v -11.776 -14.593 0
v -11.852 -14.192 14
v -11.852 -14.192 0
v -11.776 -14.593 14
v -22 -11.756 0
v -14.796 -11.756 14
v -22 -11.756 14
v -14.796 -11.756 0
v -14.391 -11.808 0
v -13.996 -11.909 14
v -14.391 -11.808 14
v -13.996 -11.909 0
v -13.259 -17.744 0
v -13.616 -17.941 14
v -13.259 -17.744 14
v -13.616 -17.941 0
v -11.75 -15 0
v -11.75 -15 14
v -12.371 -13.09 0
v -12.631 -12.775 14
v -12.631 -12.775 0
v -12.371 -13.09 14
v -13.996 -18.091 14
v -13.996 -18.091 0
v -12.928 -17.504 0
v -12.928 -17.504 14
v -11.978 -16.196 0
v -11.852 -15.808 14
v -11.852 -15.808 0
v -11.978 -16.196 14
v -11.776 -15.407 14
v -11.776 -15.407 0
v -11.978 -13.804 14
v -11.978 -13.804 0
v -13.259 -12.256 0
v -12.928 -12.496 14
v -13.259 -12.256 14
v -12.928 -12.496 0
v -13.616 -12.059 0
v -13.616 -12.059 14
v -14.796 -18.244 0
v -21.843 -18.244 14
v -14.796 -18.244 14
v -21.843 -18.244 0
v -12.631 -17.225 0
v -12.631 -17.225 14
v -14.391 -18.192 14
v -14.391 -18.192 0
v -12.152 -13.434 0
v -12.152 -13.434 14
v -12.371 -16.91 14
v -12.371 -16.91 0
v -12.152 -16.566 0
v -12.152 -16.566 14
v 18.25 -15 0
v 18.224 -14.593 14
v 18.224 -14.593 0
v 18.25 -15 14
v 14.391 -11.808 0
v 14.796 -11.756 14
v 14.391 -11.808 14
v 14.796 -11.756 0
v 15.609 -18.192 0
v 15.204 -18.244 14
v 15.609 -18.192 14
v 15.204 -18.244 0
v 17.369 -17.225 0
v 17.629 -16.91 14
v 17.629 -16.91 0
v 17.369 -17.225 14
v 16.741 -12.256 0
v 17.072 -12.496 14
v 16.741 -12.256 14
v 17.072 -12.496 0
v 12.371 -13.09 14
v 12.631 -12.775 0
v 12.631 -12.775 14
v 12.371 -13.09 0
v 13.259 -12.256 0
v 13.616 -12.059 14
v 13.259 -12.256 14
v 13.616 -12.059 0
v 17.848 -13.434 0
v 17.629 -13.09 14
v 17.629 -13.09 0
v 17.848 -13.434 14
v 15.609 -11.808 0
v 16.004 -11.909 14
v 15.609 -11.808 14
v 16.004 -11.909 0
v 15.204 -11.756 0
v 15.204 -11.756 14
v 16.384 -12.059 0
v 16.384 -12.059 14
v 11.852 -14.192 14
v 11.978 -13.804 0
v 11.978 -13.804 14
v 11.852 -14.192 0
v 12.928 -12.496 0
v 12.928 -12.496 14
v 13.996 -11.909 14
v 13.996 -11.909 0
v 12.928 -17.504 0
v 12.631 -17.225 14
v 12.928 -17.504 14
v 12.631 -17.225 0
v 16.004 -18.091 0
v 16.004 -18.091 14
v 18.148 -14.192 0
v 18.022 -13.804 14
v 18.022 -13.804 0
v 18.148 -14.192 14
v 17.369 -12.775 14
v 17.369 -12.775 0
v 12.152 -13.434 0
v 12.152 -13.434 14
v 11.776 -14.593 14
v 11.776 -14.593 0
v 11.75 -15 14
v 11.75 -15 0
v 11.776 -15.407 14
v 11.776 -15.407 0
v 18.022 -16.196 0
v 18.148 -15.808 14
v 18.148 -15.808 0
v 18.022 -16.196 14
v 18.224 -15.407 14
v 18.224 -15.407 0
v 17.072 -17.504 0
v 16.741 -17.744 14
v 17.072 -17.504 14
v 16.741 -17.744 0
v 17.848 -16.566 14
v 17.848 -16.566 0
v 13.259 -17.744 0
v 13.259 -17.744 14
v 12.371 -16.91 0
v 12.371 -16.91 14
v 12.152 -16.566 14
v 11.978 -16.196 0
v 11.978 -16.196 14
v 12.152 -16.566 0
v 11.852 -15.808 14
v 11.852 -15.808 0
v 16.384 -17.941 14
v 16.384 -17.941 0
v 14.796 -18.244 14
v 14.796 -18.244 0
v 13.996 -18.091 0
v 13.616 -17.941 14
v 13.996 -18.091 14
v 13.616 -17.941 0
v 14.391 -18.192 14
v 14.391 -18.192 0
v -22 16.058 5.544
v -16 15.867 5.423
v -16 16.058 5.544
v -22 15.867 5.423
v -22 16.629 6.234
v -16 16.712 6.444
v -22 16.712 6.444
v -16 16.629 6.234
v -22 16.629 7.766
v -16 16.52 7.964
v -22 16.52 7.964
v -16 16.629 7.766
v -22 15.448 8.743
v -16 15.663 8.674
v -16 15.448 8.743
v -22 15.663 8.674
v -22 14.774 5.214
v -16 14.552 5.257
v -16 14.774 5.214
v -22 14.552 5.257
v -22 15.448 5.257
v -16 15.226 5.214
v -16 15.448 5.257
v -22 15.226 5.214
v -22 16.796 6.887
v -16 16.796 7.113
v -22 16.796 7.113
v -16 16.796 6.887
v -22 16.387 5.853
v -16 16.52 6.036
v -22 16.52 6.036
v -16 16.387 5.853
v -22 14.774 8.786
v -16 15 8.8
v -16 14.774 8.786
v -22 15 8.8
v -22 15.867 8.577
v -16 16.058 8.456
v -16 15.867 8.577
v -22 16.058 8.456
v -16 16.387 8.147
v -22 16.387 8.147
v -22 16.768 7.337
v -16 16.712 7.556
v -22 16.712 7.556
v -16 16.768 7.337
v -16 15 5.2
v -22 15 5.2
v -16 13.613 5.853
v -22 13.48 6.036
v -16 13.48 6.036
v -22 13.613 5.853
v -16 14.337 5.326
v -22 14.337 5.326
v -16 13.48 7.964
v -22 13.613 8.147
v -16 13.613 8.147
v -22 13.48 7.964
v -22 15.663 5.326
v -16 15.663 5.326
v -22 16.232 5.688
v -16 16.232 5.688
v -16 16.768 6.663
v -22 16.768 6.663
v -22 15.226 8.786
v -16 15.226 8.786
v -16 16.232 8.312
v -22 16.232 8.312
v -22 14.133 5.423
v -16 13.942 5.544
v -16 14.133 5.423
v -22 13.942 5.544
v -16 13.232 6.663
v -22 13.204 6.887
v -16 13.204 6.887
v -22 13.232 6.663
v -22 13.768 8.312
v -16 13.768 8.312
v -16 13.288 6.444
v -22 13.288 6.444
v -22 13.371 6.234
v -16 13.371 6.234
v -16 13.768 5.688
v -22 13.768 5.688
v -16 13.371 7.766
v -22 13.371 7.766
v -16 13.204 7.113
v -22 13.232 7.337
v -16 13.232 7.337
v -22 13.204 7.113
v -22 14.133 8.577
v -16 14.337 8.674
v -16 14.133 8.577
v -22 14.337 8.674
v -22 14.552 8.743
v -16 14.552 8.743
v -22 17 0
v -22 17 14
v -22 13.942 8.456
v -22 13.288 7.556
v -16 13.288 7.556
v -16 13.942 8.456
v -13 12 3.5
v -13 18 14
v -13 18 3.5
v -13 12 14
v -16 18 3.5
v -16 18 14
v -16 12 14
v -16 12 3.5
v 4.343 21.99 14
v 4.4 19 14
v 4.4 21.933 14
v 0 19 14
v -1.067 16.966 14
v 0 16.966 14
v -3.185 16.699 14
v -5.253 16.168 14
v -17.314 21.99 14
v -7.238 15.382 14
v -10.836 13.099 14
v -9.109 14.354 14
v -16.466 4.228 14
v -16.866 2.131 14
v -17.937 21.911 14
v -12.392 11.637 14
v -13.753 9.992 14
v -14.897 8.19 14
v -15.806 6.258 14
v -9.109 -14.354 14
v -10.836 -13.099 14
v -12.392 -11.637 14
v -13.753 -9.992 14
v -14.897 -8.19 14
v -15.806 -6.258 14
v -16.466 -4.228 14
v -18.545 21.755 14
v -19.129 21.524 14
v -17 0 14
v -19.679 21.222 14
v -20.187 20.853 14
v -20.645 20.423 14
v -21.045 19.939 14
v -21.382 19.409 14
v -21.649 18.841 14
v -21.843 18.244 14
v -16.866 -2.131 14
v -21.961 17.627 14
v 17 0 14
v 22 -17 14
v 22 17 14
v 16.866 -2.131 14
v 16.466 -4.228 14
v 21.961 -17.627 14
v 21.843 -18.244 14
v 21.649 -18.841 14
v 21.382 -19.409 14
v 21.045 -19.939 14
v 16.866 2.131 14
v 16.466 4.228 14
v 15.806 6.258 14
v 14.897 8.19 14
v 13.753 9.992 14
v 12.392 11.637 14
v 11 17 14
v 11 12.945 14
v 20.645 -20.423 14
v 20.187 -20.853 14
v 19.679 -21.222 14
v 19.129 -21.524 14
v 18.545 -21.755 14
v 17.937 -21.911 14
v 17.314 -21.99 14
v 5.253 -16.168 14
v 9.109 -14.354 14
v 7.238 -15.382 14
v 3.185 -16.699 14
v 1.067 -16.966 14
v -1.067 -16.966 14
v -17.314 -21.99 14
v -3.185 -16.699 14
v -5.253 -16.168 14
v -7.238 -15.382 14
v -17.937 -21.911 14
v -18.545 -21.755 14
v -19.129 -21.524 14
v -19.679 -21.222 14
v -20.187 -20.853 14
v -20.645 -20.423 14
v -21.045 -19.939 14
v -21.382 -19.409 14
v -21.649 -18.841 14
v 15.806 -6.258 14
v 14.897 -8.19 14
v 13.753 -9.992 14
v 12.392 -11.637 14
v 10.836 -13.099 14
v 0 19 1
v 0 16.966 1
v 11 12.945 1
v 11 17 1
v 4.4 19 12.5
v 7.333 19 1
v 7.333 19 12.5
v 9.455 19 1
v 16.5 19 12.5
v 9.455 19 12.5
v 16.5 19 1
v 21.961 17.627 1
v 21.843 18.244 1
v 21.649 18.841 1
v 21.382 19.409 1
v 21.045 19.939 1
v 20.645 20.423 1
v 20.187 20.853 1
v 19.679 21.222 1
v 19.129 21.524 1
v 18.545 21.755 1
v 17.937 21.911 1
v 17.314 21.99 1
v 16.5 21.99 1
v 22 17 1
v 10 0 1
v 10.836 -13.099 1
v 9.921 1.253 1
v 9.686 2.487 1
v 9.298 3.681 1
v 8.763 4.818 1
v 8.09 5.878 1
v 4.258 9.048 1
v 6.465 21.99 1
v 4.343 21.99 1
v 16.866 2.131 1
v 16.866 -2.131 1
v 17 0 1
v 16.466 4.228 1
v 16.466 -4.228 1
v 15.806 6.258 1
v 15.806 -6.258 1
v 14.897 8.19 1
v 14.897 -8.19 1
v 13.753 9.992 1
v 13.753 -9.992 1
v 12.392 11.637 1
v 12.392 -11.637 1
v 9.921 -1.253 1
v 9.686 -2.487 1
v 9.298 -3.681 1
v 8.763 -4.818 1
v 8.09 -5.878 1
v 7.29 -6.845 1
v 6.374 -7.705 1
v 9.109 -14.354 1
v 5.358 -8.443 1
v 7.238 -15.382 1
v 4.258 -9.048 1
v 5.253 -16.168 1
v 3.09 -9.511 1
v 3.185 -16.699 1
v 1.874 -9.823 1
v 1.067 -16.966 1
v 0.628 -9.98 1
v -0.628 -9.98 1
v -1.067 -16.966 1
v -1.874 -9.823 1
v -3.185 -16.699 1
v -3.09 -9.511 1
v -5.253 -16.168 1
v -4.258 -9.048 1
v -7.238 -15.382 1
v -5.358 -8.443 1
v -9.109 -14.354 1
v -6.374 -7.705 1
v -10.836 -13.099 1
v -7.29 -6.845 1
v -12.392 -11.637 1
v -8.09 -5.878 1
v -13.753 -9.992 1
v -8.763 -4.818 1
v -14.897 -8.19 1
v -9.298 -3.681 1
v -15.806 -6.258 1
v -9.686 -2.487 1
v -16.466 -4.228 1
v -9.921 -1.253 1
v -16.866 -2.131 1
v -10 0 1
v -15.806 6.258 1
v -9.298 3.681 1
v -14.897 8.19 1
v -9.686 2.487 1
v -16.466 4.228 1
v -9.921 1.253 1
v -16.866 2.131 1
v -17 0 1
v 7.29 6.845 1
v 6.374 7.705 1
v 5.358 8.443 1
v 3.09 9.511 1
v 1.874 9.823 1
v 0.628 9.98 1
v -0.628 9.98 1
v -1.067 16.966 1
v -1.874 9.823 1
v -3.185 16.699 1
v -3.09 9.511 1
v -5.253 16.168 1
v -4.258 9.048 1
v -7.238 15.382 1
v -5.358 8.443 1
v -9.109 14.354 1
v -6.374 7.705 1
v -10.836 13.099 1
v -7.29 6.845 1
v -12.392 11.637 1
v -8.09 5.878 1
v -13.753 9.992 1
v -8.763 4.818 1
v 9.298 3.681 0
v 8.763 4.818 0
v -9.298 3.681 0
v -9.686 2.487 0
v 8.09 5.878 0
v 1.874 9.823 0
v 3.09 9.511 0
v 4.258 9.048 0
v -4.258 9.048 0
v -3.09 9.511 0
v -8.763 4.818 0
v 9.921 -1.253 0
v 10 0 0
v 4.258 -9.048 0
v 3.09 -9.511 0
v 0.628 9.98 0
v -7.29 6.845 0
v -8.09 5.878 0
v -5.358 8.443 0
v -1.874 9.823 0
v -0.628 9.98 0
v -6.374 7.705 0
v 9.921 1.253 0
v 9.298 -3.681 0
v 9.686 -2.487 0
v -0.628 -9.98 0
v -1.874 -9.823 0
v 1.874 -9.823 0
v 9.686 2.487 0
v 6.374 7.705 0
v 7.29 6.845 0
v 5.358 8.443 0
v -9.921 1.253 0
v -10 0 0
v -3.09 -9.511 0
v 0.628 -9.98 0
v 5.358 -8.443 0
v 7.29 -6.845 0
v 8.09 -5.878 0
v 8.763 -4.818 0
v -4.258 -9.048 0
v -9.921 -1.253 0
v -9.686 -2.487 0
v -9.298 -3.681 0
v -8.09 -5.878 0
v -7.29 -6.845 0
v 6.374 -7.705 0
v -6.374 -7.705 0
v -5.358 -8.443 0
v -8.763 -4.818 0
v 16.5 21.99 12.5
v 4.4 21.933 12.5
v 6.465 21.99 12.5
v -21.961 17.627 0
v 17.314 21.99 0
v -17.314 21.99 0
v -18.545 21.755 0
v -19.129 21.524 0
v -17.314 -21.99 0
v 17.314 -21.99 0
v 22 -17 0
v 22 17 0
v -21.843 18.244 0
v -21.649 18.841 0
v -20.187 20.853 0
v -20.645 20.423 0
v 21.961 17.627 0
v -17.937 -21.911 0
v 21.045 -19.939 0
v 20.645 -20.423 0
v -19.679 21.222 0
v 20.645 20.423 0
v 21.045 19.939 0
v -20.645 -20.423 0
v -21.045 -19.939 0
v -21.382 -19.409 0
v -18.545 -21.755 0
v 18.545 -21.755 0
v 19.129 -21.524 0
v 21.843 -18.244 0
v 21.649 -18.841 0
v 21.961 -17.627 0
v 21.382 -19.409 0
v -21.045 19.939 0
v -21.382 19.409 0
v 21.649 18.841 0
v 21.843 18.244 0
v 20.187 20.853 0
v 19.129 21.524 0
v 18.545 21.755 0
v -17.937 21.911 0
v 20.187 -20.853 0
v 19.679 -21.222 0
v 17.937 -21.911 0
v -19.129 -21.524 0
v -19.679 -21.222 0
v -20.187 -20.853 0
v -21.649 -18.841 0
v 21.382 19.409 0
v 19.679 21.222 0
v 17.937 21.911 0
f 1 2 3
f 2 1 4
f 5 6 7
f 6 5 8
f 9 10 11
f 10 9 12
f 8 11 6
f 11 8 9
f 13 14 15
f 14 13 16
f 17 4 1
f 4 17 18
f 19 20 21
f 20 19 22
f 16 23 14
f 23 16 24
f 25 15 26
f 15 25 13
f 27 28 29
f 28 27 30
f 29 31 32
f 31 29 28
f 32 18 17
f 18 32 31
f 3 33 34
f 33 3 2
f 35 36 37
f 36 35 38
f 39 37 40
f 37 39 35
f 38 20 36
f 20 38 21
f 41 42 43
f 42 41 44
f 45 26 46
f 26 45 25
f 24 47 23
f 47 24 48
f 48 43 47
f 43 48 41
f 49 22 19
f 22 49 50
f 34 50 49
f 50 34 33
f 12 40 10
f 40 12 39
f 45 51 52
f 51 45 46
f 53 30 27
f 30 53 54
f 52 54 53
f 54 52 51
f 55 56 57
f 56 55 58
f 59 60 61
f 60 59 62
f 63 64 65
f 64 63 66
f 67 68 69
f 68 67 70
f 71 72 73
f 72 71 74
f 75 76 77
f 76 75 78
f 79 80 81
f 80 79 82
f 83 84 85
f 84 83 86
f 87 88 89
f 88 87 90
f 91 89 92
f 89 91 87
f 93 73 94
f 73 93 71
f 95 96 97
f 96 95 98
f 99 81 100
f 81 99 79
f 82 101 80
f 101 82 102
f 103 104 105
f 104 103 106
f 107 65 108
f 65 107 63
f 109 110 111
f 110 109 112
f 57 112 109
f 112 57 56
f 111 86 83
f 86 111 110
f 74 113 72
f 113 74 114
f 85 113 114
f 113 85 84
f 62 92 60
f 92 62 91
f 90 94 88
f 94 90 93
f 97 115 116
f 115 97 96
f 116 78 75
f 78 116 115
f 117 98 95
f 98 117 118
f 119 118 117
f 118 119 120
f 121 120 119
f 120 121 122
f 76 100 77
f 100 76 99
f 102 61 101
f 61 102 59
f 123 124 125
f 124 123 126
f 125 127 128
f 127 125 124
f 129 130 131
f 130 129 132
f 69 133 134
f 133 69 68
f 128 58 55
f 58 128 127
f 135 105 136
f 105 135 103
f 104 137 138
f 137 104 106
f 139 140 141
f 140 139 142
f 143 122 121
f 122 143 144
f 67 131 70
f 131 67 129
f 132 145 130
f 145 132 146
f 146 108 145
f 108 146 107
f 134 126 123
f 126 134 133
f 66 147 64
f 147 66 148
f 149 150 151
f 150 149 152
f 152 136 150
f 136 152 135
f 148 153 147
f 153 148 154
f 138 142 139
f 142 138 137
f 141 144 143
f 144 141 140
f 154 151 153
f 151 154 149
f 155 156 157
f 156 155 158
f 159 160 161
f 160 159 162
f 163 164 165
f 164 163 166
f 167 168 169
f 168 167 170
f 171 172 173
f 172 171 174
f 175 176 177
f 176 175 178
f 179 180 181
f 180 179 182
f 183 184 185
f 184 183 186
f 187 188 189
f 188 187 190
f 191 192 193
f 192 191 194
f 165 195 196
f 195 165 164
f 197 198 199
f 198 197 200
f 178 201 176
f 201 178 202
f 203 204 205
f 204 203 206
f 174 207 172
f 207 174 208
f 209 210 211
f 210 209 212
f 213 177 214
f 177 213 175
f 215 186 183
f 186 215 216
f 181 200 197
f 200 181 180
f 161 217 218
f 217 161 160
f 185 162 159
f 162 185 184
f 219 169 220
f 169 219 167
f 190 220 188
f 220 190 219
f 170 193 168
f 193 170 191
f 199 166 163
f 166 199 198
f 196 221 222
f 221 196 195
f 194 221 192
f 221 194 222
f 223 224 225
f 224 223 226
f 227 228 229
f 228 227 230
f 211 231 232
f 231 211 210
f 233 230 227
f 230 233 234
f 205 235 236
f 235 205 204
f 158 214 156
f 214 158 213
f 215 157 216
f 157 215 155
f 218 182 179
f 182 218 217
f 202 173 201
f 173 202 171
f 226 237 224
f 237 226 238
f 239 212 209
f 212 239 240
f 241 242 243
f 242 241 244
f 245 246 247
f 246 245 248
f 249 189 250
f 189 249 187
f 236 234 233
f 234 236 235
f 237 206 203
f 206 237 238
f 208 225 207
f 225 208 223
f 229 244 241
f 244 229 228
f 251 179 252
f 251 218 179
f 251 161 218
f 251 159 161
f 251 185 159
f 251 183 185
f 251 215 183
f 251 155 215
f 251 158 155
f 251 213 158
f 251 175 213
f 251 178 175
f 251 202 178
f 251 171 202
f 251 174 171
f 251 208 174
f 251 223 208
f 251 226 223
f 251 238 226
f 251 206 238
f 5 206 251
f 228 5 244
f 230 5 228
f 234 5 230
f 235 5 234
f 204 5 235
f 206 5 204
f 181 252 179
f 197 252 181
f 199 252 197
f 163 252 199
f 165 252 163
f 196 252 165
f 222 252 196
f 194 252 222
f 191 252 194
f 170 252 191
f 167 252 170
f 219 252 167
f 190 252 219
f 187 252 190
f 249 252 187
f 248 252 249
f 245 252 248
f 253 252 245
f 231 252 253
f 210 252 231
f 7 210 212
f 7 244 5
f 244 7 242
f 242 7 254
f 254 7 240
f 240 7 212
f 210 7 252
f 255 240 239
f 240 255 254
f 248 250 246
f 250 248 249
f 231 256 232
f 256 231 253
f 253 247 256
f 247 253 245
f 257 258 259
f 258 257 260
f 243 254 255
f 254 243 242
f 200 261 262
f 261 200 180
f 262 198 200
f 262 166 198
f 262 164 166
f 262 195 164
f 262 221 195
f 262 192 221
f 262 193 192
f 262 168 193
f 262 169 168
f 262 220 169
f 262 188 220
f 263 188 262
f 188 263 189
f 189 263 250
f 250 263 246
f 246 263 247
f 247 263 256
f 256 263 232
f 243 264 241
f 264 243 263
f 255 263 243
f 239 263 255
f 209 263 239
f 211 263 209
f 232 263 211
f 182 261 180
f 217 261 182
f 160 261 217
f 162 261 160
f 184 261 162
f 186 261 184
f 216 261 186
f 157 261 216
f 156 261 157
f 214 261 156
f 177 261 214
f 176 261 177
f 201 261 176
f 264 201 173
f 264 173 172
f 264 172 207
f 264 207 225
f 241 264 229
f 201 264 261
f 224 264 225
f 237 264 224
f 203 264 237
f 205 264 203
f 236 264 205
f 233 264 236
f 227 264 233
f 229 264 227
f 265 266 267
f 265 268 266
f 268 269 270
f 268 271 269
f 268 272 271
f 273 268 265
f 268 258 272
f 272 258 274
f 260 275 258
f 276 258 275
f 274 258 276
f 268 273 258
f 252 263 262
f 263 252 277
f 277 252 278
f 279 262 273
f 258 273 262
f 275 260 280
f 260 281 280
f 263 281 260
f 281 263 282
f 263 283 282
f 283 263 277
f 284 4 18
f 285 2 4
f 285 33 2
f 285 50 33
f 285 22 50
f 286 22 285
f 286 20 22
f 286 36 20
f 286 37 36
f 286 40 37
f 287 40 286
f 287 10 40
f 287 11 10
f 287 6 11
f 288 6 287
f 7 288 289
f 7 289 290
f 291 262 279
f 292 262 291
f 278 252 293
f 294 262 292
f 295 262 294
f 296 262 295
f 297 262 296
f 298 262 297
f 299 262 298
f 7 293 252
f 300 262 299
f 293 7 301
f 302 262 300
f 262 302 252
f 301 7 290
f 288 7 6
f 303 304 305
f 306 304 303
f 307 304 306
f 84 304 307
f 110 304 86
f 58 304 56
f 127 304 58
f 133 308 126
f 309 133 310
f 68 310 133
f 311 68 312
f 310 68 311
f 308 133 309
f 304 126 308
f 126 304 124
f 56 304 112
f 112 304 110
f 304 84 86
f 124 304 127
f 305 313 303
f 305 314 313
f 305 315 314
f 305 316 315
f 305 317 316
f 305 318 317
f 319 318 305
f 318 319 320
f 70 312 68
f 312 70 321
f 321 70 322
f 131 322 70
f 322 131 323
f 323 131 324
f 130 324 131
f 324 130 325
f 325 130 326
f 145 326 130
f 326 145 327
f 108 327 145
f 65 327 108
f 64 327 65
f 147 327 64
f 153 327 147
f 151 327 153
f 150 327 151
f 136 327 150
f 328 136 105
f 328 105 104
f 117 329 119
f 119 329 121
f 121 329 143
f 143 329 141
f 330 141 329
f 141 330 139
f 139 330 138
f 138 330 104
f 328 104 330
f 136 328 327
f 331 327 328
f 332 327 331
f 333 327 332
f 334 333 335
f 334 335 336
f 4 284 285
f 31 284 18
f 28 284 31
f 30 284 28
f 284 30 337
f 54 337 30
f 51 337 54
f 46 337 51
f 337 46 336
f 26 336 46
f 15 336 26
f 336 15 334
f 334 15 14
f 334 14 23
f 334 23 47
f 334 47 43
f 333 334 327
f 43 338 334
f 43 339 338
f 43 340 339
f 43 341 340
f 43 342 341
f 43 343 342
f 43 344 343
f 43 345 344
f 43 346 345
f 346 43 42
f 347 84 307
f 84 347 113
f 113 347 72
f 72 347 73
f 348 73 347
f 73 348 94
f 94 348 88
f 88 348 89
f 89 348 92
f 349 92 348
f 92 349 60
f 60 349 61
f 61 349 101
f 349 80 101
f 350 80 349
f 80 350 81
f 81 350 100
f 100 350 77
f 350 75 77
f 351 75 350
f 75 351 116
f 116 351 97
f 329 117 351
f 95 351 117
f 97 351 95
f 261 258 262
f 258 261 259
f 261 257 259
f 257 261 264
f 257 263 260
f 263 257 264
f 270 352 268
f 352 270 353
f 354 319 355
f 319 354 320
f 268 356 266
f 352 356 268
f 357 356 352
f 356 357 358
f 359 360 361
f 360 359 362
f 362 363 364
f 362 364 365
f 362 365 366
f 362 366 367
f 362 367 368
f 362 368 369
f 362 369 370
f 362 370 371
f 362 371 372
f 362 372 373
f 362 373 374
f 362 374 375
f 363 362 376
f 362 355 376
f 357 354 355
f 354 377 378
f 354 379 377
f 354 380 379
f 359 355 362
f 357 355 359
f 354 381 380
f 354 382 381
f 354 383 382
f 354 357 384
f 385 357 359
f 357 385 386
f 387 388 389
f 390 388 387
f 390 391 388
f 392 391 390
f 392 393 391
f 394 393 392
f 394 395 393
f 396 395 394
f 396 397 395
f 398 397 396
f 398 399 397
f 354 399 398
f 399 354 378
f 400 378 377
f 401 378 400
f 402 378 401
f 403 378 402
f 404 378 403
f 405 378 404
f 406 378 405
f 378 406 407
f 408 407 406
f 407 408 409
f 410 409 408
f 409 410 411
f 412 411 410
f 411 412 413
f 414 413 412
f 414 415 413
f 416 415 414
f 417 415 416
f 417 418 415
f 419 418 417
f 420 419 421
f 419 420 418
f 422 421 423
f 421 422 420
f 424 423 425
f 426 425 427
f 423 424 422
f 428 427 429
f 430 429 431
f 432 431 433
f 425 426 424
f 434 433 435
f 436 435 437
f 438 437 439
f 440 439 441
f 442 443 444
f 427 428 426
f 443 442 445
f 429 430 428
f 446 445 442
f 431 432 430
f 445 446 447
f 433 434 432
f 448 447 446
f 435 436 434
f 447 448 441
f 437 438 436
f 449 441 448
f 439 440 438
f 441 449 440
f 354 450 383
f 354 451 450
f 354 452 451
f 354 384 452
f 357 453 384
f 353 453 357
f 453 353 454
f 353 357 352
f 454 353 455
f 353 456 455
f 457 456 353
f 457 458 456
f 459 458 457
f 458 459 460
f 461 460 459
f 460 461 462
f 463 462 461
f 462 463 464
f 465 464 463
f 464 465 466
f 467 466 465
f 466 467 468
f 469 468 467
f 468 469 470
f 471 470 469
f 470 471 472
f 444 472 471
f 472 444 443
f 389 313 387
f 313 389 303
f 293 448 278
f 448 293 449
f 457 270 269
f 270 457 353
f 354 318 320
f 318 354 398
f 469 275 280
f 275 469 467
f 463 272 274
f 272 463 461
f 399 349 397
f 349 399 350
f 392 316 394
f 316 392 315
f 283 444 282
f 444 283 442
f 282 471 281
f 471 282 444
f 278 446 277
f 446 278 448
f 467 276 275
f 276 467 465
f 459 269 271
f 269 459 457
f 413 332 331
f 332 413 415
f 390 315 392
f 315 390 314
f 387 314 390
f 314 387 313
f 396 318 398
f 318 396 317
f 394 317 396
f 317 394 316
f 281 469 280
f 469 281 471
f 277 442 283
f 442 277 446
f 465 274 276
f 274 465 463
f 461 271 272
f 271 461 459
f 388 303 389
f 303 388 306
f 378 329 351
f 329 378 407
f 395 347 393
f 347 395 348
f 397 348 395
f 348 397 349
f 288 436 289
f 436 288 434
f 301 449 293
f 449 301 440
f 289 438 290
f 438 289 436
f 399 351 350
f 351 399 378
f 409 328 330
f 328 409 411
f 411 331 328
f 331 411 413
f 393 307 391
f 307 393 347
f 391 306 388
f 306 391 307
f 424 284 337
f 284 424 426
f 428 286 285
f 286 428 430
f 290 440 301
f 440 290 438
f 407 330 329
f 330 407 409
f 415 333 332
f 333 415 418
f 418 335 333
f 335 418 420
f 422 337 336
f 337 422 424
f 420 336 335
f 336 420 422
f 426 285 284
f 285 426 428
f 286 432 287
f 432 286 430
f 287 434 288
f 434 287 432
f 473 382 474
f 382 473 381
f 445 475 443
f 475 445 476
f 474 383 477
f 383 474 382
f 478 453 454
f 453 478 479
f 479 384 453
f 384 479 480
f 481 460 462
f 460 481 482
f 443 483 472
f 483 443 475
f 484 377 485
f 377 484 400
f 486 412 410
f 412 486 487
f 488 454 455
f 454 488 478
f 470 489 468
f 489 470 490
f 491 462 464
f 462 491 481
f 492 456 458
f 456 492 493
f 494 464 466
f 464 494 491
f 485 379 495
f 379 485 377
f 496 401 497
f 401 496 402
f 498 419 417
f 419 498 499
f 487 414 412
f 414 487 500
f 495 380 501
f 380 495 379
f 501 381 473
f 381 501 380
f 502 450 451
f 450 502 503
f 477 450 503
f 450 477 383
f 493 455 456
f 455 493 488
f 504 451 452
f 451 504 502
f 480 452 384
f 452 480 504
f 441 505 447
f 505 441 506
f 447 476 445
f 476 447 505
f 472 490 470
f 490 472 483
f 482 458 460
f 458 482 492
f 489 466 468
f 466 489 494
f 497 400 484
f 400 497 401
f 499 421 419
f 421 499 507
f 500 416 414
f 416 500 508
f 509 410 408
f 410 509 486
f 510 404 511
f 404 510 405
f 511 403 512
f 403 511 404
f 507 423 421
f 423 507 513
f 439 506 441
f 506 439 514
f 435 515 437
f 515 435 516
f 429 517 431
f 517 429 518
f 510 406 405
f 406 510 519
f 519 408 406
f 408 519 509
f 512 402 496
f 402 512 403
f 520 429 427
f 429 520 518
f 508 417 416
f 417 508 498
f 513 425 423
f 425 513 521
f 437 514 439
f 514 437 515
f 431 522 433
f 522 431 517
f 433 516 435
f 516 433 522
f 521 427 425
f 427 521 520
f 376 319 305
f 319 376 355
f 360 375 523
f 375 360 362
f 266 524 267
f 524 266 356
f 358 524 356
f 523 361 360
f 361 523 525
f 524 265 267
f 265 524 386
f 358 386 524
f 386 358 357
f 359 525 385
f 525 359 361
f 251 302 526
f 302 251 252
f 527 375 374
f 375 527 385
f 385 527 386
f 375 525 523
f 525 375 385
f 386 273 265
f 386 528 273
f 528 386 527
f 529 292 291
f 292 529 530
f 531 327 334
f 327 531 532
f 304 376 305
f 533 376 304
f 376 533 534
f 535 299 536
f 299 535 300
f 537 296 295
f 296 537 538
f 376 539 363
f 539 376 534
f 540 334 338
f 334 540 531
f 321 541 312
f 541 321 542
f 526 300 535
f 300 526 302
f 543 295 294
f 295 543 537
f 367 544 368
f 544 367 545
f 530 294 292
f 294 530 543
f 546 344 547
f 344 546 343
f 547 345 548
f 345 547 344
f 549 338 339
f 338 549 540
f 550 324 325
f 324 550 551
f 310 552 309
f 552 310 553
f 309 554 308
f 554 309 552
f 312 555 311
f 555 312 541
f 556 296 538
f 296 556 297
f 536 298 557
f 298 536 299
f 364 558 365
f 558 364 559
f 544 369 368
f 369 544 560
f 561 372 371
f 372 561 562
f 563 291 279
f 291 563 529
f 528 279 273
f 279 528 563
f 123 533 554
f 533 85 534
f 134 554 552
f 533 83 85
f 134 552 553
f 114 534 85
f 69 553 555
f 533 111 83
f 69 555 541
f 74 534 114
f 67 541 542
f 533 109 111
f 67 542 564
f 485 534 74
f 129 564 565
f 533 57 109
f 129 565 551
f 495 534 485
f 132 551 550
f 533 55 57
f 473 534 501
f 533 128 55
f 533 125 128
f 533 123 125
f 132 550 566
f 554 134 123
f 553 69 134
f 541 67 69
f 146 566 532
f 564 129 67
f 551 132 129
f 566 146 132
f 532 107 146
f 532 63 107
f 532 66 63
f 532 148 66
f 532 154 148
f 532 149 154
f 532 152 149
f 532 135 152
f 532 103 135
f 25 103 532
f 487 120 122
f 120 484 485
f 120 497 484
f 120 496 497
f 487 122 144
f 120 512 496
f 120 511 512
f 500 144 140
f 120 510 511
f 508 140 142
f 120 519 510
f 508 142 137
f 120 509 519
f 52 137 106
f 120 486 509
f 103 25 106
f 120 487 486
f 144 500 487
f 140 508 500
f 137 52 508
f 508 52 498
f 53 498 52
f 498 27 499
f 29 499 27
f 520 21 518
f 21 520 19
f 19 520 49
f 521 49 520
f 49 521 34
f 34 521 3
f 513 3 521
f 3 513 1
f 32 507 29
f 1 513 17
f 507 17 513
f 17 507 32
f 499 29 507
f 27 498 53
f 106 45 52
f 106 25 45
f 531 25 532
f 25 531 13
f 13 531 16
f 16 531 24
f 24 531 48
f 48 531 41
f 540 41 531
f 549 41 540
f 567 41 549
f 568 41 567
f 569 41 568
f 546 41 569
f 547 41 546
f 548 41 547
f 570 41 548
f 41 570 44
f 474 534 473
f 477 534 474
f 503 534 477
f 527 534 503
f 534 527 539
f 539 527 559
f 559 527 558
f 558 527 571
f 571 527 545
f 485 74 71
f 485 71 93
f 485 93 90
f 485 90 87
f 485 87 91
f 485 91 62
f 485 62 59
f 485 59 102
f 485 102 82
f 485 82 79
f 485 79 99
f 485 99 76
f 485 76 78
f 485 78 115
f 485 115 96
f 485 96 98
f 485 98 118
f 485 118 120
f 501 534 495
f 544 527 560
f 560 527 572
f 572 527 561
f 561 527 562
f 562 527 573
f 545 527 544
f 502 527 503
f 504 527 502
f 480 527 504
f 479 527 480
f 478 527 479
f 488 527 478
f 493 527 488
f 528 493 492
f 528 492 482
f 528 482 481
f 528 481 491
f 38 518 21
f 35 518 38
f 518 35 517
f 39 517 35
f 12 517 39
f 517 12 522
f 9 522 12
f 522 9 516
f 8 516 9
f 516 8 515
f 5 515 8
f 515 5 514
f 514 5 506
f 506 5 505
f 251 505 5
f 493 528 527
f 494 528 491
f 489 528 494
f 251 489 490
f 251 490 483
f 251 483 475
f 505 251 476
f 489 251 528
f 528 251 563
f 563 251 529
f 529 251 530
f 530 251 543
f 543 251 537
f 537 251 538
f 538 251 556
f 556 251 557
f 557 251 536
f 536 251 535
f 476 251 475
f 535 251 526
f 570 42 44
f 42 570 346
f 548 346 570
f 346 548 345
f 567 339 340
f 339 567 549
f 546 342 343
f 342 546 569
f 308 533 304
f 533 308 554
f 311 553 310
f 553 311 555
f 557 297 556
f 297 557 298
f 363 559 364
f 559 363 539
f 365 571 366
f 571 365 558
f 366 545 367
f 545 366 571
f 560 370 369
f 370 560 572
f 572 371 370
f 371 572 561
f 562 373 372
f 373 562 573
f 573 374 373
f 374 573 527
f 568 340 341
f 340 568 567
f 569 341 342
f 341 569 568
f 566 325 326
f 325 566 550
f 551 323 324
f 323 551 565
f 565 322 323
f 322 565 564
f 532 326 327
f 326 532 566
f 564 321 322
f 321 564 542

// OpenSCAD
$fn = 50;


difference() {
	union() {
		translate(v = [0, 0, 0]) {
			rotate(a = [0, 0, 0]) {
				hull() {
					translate(v = [-17.0000000000, 17.0000000000, 0]) {
						rotate(a = [0, 0, 0]) {
							translate(v = [0, 0, 0]) {
								rotate(a = [0, 0, 0]) {
									cylinder(h = 14, r = 5);
								}
							}
						}
					}
					translate(v = [17.0000000000, 17.0000000000, 0]) {
						rotate(a = [0, 0, 0]) {
							translate(v = [0, 0, 0]) {
								rotate(a = [0, 0, 0]) {
									cylinder(h = 14, r = 5);
								}
							}
						}
					}
					translate(v = [-17.0000000000, -17.0000000000, 0]) {
						rotate(a = [0, 0, 0]) {
							translate(v = [0, 0, 0]) {
								rotate(a = [0, 0, 0]) {
									cylinder(h = 14, r = 5);
								}
							}
						}
					}
					translate(v = [17.0000000000, -17.0000000000, 0]) {
						rotate(a = [0, 0, 0]) {
							translate(v = [0, 0, 0]) {
								rotate(a = [0, 0, 0]) {
									cylinder(h = 14, r = 5);
								}
							}
						}
					}
				}
			}
		}
	}
	union() {
		translate(v = [-22.5000000000, -15.0000000000, -125]) {
			rotate(a = [0, 0, 0]) {
				hull() {
					translate(v = [7.5000000000, 0, 0]) {
						rotate(a = [0, 0, 0]) {
							translate(v = [0, 0, 0]) {
								rotate(a = [0, 0, 0]) {
									cylinder(h = 250, r = 3.2500000000);
								}
							}
						}
					}
					translate(v = [-7.5000000000, 0, 0]) {
						rotate(a = [0, 0, 0]) {
							translate(v = [0, 0, 0]) {
								rotate(a = [0, 0, 0]) {
									cylinder(h = 250, r = 3.2500000000);
								}
							}
						}
					}
				}
			}
		}
		translate(v = [15.0000000000, -15.0000000000, -125.0000000000]) {
			rotate(a = [0, 0, 0]) {
				cylinder(h = 250, r = 3.2500000000);
			}
		}
		translate(v = [-22.0000000000, 15.0000000000, 7.0000000000]) {
			rotate(a = [0, 90, 0]) {
				cylinder(h = 9, r = 1.8000000000);
			}
		}
		translate(v = [-16.0000000000, 12.0000000000, 3.5000000000]) {
			rotate(a = [0, 0, 0]) {
				cube(size = [3, 6, 10.5000000000]);
			}
		}
		translate(v = [0.0000000000, 11.0000000000, 1.0000000000]) {
			rotate(a = [0, 0, 0]) {
				cube(size = [11, 8, 16]);
			}
		}
		translate(v = [0, 0, 1.0000000000]) {
			rotate(a = [0, 0, 0]) {
				cylinder(h = 16, r = 17.0000000000);
			}
		}
		translate(v = [0, 0, -7.0000000000]) {
			rotate(a = [0, 0, 0]) {
				cylinder(h = 14, r = 10.0000000000);
			}
		}
		translate(v = [0.0000000000, 17.0000000000, 1]) {
			rotate(a = [0, 0, 0]) {
				cube(size = [22.0000000000, 2, 16]);
			}
		}
		translate(v = [16.5000000000, 17.0000000000, 1]) {
			rotate(a = [0, 0, 0]) {
				cube(size = [5.5000000000, 5, 16]);
			}
		}
		translate(v = [4.4000000000, 17.0000000000, 12.5000000000]) {
			rotate(a = [0, 0, 0]) {
				cube(size = [17.6000000000, 5, 1.5000000000]);
			}
		}
		translate(v = [3.5833333333, 22.7500000000, 1]) {
			rotate(a = [0, 0, -45]) {
				cube(size = [7.5000000000, 1.5000000000, 16]);
			}
		}
	}
}
